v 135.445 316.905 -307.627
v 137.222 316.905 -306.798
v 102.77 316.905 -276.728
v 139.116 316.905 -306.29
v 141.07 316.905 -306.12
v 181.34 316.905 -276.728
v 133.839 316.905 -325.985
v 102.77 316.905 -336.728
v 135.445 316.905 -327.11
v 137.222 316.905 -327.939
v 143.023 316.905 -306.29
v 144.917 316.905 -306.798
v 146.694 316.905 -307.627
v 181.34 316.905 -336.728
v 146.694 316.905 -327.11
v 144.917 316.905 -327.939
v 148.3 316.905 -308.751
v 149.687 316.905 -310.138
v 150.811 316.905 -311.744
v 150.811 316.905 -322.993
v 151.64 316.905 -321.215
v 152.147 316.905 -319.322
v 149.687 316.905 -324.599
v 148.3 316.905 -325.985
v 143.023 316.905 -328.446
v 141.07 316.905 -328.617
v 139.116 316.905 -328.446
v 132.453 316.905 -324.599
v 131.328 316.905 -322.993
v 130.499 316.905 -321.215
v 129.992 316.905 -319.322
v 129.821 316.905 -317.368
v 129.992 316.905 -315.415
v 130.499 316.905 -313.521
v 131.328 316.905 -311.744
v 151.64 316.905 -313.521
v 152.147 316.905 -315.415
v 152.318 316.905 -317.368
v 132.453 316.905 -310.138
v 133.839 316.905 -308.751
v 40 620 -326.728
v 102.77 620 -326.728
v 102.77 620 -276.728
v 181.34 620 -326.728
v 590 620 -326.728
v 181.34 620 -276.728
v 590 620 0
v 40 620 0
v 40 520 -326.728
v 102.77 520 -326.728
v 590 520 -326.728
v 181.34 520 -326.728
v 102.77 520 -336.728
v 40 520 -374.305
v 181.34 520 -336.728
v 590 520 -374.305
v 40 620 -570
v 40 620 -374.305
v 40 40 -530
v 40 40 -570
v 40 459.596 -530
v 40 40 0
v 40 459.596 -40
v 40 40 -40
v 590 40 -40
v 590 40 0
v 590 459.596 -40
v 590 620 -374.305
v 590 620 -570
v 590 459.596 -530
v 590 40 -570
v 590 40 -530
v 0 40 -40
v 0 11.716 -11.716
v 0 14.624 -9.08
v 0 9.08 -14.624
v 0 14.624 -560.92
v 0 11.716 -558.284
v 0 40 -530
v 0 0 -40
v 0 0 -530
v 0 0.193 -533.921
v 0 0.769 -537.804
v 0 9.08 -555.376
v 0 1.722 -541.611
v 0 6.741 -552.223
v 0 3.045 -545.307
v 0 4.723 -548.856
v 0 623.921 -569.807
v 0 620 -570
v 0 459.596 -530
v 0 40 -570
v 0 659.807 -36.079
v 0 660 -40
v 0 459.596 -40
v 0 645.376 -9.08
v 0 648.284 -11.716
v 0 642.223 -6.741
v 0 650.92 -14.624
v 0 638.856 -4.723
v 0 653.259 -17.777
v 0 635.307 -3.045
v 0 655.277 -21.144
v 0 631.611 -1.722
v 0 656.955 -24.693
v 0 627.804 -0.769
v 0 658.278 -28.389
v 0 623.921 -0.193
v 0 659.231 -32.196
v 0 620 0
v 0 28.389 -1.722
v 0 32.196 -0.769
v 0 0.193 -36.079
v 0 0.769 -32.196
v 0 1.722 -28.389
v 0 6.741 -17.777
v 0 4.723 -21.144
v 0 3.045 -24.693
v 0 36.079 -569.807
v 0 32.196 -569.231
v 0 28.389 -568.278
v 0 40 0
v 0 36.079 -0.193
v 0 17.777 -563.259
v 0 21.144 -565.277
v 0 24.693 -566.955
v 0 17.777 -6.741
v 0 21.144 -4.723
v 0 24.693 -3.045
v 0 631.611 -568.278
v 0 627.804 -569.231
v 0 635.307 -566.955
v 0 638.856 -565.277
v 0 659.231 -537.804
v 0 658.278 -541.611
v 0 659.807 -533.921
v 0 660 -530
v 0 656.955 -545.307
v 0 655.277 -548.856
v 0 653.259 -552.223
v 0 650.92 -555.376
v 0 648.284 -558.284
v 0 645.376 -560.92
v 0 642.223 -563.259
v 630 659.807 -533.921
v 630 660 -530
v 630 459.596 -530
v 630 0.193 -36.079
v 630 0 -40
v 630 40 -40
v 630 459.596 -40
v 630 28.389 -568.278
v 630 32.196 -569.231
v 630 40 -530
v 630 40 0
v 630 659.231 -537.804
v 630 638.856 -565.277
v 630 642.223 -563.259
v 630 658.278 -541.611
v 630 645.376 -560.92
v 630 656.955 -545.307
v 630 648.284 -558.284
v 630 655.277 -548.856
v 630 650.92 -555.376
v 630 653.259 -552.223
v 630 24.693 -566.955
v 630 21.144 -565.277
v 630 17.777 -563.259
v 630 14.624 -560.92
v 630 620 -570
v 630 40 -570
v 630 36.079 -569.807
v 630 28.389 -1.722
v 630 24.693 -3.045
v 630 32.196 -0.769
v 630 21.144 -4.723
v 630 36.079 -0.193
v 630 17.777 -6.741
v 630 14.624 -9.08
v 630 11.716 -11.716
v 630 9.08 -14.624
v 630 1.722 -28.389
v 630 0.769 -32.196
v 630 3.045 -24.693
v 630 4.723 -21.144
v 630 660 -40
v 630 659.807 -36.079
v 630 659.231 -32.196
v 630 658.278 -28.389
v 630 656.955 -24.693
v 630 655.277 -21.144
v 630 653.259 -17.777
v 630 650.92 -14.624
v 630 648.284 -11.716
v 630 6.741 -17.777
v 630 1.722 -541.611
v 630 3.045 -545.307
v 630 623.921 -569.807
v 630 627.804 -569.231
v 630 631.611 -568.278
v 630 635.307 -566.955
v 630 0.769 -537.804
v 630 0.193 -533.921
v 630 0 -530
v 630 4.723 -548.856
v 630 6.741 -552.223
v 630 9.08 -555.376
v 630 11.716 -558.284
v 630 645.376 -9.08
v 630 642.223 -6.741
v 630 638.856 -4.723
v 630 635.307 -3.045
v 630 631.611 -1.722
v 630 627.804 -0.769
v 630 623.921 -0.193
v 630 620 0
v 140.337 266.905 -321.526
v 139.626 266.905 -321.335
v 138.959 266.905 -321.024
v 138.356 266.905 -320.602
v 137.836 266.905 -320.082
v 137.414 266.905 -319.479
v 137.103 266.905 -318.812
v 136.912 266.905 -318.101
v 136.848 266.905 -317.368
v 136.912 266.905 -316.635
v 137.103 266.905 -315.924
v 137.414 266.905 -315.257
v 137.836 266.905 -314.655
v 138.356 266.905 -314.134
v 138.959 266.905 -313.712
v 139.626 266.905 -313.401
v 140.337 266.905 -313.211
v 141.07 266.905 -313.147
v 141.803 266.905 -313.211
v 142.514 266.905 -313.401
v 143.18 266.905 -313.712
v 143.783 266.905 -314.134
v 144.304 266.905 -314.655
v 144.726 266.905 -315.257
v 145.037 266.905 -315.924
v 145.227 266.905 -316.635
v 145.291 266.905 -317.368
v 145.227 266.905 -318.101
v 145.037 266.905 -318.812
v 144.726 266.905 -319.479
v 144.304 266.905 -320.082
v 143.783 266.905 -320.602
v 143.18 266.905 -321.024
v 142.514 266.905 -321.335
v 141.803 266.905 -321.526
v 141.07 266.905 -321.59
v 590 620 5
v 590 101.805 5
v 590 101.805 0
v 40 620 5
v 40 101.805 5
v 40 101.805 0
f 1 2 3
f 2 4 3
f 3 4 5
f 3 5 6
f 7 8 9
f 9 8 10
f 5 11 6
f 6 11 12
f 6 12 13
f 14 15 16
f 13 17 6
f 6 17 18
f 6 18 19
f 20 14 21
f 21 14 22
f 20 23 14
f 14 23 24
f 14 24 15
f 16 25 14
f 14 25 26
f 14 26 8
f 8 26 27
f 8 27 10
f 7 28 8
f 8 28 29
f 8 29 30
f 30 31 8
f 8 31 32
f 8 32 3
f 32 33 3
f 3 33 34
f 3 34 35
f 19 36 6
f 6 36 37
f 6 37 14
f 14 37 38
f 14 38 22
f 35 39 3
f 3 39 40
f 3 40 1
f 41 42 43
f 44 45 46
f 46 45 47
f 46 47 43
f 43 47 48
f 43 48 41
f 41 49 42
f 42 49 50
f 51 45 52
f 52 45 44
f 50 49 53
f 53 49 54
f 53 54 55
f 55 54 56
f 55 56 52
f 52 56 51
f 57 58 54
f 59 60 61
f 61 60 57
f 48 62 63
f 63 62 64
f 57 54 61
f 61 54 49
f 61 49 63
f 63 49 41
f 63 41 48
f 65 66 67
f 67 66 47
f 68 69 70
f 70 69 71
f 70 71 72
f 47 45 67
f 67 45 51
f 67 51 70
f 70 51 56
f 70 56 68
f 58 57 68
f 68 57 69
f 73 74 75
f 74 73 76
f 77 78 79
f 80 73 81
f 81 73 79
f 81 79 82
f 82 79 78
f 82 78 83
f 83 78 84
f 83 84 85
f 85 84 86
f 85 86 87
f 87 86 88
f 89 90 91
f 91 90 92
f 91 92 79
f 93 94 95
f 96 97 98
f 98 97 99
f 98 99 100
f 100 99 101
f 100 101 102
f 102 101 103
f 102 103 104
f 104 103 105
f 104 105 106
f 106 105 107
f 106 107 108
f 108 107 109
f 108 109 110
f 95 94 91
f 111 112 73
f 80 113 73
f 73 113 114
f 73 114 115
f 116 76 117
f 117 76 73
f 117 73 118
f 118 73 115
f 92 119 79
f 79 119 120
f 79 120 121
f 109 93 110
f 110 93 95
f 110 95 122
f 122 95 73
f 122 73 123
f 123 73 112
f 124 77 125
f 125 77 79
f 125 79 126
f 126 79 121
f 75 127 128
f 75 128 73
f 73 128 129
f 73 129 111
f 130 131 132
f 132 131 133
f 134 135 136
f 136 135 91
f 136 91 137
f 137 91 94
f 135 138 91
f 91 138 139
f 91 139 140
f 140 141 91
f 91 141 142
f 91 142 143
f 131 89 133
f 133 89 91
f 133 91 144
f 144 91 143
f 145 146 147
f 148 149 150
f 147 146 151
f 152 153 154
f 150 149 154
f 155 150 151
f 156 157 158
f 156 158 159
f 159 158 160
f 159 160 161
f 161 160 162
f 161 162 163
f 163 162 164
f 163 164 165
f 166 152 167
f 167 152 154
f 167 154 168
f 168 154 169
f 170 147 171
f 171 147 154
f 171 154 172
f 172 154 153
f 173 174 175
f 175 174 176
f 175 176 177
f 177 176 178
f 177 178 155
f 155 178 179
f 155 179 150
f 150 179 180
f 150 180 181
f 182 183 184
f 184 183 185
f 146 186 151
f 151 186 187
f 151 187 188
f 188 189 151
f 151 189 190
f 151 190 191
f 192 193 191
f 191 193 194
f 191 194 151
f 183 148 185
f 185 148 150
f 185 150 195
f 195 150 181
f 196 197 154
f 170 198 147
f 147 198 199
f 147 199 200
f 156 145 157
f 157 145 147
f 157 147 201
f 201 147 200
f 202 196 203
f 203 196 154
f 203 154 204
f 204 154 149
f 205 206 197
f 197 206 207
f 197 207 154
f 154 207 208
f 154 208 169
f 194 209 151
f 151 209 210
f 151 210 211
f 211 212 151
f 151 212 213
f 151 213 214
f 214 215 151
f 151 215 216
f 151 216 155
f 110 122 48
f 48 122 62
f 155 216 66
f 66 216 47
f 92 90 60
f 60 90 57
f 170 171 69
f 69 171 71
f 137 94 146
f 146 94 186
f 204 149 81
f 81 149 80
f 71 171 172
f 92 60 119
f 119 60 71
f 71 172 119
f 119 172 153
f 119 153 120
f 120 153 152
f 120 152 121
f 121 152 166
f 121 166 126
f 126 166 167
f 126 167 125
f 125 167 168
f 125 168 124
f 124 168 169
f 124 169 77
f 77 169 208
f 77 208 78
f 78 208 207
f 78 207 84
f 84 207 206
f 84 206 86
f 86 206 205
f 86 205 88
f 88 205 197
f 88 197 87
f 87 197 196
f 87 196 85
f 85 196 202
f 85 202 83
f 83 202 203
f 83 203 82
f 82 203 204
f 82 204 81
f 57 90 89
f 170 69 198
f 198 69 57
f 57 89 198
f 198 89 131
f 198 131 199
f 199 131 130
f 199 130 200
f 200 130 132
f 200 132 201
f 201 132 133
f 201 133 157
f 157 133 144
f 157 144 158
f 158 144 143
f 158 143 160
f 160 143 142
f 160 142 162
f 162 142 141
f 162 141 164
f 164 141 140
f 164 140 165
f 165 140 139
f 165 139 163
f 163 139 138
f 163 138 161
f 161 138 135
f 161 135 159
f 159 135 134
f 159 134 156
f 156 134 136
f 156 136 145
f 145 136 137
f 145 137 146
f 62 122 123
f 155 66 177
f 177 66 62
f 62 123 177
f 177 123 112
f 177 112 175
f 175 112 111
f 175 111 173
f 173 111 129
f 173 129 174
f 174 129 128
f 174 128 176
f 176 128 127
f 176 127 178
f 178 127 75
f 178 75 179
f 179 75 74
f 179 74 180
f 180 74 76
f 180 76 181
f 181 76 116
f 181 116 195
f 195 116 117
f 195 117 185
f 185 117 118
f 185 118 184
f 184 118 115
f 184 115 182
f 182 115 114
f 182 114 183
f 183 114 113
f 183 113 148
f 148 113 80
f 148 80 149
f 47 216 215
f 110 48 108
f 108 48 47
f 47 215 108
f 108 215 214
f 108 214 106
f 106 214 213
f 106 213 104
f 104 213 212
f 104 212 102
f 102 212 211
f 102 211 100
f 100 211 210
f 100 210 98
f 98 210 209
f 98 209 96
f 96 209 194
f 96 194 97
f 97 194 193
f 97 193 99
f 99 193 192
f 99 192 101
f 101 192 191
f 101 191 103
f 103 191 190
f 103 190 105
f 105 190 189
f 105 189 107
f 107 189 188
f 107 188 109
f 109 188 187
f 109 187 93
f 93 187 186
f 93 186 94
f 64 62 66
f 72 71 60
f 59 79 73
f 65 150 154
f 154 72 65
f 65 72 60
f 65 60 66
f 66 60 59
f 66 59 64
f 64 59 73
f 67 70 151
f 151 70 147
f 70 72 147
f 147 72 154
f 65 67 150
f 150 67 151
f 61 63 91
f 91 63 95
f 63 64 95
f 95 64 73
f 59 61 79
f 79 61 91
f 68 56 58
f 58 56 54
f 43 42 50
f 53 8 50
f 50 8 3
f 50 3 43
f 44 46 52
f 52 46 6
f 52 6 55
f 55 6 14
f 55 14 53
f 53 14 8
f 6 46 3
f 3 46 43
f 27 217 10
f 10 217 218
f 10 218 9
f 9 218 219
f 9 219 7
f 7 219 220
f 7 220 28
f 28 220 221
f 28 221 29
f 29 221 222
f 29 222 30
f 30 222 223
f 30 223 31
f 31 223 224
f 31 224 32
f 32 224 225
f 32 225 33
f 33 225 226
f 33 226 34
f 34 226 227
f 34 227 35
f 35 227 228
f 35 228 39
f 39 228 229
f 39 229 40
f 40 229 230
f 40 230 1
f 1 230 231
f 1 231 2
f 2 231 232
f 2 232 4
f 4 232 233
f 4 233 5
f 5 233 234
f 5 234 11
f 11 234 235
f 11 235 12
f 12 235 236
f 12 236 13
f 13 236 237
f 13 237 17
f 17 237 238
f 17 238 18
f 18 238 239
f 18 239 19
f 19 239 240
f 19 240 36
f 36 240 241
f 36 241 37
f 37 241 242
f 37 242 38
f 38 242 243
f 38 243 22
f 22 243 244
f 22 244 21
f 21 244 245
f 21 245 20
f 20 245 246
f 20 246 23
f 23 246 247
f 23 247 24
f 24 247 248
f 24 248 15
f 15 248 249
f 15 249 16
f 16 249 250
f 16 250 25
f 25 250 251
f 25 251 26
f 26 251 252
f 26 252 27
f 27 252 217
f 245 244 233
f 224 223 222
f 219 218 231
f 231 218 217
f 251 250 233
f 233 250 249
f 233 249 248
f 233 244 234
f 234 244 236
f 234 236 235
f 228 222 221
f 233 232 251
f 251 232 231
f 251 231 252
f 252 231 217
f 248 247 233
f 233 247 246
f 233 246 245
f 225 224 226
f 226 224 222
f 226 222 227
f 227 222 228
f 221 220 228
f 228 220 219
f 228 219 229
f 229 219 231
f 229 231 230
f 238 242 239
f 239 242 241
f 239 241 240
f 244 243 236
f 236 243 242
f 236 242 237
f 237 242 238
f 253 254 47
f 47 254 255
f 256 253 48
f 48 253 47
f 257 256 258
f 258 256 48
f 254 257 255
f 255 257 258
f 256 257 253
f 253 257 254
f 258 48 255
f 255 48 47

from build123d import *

# Parameters (mm, degrees)
SKETCH1_W                = 630
SKETCH1_H                = 570
BOSS_EXTRUDE1_DEPTH      = 660
FILLET1_R                = 40
CUT_EXTRUDE1_DEPTH       = 660
CUT_EXTRUDE1_DEPTH_BACK  = 5000
SKETCH3_W                = 550
SKETCH3_H                = 580
CUT_EXTRUDE2_DEPTH       = 5000
CUT_EXTRUDE2_DEPTH_BACK  = 5000
SKETCH4_W                = 490
SKETCH4_H                = 419.595995266
SKETCH5_W                = 601.346764223
SKETCH5_H                = 47.577370451
BOSS_EXTRUDE2_DEPTH      = 100
BOSS_EXTRUDE3_DEPTH      = 50
BOSS_EXTRUDE3_DEPTH_BACK = 10
SKETCH6_W                = 78.570394343
SKETCH6_H                = 303.095065724
SKETCH7_R                = 11.248698276
BOSS_EXTRUDE4_DEPTH      = 50
BOSS_EXTRUDE4_TAPER      = 8
SKETCH8_W                = 550
SKETCH8_H                = 518.195144688
BOSS_EXTRUDE5_DEPTH      = 5


with BuildPart() as part:
    # Sketch1 → Boss-Extrude1 (new body)
    with BuildSketch(Plane(origin=(0, 0, 0), x_dir=(1, 0, 0), z_dir=(0, 1, 0))):
        with Locations((315, 285)):
            Rectangle(SKETCH1_W, SKETCH1_H)
    extrude(amount=BOSS_EXTRUDE1_DEPTH)

    # Fillet1
    fillet1_edges = [part.edges().sort_by_distance(p)[0] for p in [
        (315, 0, -570),
        (315, 660, -570),
        (315, 0, 0),
        (315, 660, 0),
    ]]
    fillet(fillet1_edges, radius=FILLET1_R)

    # Sketch3 → Cut-Extrude1 (cut, two sides: drawn at the far end of the back side and taken through both)
    with BuildSketch(Plane.XY.offset(-CUT_EXTRUDE1_DEPTH_BACK)):
        with Locations((315, 330)):
            Rectangle(SKETCH3_W, SKETCH3_H)
    extrude(amount=CUT_EXTRUDE1_DEPTH + CUT_EXTRUDE1_DEPTH_BACK, mode=Mode.SUBTRACT)

    # Sketch4 → Cut-Extrude2 (cut, two sides: drawn at the far end of the back side and taken through both)
    with BuildSketch(Plane(origin=(630, 0, 0), x_dir=(0, 0, -1), z_dir=(1, 0, 0)).offset(-CUT_EXTRUDE2_DEPTH_BACK)):
        with Locations((285, 249.797997633)):
            Rectangle(SKETCH4_W, SKETCH4_H)
    extrude(amount=CUT_EXTRUDE2_DEPTH + CUT_EXTRUDE2_DEPTH_BACK, mode=Mode.SUBTRACT)

    # Sketch5 → Boss-Extrude2 (add)
    with BuildSketch(Plane(origin=(0, 620, 0), x_dir=(-1, 0, 0), z_dir=(0, -1, 0))):
        with Locations((-312.270150876, 350.516378981)):
            Rectangle(SKETCH5_W, SKETCH5_H)
    extrude(amount=BOSS_EXTRUDE2_DEPTH)

    # Sketch6 → Boss-Extrude3 (add, two sides: drawn at the far end of the back side and taken through both)
    with BuildSketch(Plane.XY.offset(-326.727693756).offset(-BOSS_EXTRUDE3_DEPTH_BACK)):
        with Locations((142.054821649, 468.452467138)):
            Rectangle(SKETCH6_W, SKETCH6_H)
    extrude(amount=BOSS_EXTRUDE3_DEPTH + BOSS_EXTRUDE3_DEPTH_BACK)

    # Sketch7 → Boss-Extrude4 (add)
    with BuildSketch(Plane(origin=(0, 316.904934276, 0), x_dir=(-1, 0, 0), z_dir=(0, -1, 0))):
        with Locations((-141.069612942, 317.368211044)):
            Circle(SKETCH7_R)
    extrude(amount=BOSS_EXTRUDE4_DEPTH, taper=BOSS_EXTRUDE4_TAPER)


with BuildPart() as body_2:
    # Sketch8 → Boss-Extrude5 (new body)
    with BuildSketch(Plane.XY):
        with Locations((315, 360.902427656)):
            Rectangle(SKETCH8_W, SKETCH8_H)
    extrude(amount=BOSS_EXTRUDE5_DEPTH)


solid = Compound([part.part, body_2.part])
